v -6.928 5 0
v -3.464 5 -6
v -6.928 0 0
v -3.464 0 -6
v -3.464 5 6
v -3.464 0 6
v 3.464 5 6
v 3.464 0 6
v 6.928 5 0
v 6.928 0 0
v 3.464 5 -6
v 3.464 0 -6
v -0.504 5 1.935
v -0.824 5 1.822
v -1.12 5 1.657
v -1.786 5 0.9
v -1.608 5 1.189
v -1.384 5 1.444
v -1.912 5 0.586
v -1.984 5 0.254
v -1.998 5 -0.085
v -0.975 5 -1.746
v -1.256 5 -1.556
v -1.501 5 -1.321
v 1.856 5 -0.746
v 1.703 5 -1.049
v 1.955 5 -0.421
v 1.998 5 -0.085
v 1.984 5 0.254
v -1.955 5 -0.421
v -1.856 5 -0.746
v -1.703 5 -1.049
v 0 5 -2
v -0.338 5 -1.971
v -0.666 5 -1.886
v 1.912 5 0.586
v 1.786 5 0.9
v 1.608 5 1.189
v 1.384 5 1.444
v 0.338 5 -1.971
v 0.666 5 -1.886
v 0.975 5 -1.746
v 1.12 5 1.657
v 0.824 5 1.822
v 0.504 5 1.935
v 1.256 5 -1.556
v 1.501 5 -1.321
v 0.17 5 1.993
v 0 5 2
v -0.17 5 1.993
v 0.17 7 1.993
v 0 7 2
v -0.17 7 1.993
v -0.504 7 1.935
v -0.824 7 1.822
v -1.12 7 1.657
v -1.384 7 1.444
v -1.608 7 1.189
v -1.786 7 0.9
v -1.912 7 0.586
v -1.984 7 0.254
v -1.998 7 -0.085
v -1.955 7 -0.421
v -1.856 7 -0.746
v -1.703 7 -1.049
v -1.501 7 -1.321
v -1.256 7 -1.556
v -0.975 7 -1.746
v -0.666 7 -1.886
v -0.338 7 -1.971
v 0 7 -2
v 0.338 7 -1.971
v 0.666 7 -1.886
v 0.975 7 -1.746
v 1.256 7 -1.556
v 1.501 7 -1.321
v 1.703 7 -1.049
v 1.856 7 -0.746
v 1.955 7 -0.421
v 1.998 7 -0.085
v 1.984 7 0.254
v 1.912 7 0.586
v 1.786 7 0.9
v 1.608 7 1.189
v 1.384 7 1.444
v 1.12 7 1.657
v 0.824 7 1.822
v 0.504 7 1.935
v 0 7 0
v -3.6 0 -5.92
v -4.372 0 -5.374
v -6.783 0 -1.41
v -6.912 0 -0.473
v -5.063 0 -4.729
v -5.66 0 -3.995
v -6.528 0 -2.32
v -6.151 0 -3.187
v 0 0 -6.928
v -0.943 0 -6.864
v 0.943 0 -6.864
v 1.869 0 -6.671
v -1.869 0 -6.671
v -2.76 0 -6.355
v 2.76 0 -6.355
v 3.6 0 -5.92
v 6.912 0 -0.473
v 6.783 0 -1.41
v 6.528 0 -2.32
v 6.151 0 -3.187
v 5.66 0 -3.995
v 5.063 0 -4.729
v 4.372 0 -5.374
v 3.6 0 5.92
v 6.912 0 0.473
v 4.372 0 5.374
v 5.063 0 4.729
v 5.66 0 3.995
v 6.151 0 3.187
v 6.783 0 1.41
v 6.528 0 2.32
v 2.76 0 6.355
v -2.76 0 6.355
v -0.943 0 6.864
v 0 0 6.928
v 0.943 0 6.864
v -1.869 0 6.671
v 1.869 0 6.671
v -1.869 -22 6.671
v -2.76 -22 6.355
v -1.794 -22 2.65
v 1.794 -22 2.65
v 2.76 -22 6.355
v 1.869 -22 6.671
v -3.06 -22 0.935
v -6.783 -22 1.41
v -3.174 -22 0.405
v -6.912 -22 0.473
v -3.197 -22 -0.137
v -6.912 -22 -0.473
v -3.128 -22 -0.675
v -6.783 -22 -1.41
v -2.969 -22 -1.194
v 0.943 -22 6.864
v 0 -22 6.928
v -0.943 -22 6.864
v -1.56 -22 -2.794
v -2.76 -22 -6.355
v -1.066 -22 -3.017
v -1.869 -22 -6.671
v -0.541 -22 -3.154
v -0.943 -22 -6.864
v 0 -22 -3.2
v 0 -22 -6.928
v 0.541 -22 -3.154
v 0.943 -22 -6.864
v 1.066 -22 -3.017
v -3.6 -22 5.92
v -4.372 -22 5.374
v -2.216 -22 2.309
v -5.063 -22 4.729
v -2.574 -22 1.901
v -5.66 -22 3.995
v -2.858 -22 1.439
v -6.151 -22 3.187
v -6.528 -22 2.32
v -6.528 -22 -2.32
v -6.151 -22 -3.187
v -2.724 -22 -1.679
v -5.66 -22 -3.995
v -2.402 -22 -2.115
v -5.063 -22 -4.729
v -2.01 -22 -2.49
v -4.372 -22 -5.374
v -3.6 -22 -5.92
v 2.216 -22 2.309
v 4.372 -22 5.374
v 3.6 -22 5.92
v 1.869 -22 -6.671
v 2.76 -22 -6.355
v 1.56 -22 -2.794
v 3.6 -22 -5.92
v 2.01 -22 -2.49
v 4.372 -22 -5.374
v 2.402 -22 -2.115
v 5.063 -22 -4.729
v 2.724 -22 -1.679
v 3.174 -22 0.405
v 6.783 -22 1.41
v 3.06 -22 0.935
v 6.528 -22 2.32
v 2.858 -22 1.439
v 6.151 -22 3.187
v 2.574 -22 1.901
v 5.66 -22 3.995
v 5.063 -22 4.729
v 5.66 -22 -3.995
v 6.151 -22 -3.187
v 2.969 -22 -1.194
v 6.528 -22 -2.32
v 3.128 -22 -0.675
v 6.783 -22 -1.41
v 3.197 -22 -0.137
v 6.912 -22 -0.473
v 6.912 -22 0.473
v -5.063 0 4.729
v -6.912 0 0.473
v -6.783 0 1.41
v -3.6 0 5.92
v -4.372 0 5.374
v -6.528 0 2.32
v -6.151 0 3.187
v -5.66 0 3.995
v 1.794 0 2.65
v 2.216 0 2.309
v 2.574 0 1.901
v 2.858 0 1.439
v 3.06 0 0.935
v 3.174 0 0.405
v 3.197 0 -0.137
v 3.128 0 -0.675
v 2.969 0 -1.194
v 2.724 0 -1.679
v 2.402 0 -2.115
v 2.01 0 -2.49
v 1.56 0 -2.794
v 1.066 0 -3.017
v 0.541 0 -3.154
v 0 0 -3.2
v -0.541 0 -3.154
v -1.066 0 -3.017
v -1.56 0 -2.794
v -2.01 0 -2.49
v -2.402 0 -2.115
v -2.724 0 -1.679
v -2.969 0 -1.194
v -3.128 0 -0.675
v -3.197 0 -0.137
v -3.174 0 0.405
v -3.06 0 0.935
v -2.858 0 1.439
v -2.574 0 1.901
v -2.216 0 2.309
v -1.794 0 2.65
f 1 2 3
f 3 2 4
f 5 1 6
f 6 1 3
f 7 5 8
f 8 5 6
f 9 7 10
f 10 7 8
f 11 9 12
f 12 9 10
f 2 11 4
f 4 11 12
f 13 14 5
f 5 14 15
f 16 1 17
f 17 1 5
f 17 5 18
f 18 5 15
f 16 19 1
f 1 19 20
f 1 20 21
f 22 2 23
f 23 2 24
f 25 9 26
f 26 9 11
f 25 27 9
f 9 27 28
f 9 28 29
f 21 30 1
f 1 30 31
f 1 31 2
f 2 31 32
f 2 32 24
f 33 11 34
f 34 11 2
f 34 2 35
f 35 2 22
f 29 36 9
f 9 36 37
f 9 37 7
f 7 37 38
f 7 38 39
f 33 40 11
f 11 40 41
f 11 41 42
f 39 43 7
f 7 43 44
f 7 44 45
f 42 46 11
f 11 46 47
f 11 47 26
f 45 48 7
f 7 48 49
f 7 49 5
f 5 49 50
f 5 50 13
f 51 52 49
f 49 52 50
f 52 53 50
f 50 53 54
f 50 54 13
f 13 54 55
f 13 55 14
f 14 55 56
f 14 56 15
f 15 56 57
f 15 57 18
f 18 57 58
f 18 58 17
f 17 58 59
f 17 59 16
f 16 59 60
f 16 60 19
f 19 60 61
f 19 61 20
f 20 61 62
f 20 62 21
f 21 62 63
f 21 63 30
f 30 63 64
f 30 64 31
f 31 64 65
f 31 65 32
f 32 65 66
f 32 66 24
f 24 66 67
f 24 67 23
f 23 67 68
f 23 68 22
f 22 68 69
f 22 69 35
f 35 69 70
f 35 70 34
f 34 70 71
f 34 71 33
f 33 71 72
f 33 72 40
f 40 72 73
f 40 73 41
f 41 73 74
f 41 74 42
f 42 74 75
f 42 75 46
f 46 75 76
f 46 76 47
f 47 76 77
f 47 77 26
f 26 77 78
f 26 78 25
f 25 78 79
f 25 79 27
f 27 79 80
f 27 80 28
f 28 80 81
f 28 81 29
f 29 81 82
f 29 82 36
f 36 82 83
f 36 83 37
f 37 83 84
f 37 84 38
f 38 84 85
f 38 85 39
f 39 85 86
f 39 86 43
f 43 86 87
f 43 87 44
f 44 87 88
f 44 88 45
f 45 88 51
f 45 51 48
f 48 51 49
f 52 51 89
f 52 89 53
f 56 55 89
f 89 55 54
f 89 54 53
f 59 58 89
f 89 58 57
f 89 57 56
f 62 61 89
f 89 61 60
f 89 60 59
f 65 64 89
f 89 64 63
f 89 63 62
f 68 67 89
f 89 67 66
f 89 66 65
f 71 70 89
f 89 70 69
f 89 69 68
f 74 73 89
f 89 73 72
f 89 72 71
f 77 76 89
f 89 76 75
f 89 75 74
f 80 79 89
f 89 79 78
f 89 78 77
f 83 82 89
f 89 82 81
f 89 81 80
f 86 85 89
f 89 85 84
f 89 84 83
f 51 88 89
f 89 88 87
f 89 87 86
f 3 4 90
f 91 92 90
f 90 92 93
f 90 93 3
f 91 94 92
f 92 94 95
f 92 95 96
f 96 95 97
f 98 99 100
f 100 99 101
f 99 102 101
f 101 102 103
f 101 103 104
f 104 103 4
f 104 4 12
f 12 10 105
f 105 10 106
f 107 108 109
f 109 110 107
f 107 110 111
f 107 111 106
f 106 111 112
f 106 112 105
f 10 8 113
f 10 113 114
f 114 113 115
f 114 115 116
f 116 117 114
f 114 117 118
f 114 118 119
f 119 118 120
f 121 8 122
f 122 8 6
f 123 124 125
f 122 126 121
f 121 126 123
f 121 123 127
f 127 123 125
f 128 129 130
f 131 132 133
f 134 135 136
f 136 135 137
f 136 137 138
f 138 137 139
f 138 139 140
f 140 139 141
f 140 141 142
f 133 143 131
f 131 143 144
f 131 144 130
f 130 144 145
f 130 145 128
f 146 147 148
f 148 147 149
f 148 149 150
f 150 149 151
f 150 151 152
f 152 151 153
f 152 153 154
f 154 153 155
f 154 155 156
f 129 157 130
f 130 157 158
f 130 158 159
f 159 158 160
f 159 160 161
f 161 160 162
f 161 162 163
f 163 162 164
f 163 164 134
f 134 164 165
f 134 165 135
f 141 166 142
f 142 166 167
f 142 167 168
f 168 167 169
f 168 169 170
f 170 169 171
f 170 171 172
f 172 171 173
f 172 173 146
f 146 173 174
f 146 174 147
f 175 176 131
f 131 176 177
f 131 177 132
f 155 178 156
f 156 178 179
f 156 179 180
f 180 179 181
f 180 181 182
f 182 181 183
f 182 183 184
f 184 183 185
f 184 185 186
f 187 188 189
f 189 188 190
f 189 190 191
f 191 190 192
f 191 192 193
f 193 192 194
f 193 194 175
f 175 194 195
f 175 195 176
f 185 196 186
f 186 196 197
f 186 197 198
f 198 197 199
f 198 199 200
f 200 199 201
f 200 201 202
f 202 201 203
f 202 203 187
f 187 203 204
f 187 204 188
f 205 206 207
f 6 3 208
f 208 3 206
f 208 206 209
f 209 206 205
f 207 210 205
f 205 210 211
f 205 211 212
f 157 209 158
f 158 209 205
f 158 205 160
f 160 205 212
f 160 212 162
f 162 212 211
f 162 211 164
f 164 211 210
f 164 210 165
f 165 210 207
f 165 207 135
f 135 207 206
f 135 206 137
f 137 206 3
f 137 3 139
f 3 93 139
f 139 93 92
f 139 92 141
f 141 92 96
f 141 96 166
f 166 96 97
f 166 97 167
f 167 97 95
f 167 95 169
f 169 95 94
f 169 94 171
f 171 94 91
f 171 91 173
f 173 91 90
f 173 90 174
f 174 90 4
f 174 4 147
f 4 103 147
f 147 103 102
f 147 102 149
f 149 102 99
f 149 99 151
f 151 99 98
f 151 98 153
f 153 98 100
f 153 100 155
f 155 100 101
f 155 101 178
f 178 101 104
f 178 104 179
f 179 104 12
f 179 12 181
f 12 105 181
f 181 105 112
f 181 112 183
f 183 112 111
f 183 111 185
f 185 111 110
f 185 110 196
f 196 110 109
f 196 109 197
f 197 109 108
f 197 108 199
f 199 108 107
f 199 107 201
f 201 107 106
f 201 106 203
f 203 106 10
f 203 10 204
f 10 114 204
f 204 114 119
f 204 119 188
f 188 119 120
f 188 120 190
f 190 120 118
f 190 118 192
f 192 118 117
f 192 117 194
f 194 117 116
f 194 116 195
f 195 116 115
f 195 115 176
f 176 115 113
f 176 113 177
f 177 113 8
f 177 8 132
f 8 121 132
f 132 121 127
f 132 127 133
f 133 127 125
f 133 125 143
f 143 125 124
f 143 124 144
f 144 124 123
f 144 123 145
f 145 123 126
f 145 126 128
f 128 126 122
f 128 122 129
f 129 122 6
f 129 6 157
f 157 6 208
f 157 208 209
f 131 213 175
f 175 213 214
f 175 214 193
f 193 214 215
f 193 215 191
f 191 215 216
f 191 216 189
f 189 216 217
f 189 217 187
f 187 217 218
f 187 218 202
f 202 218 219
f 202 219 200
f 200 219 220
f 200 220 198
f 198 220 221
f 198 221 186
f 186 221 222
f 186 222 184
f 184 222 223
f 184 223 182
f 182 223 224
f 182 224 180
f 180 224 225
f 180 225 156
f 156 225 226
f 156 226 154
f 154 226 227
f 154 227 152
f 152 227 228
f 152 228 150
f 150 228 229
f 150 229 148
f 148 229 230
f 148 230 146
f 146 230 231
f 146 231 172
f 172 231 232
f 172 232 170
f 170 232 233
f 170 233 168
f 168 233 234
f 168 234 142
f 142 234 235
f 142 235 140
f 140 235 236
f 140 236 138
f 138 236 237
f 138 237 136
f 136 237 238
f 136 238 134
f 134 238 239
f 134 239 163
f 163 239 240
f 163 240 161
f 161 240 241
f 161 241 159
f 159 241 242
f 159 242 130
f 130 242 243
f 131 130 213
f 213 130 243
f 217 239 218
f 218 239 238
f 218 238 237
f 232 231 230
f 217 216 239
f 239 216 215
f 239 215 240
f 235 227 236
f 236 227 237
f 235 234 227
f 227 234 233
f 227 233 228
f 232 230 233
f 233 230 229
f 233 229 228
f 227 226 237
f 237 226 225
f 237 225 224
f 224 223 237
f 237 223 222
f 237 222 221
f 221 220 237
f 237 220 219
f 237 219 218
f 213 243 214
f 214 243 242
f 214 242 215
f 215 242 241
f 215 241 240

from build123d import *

# Parameters (mm, degrees)
BOSS_EXTRUDE1_DEPTH = 5
SKETCH1_3_R         = 2
BOSS_EXTRUDE2_DEPTH = 7
SKETCH2_R           = 6.92820323
BOSS_EXTRUDE3_DEPTH = 22


with BuildPart() as part:
    # Sketch1 → Boss-Extrude1 (new body)
    with BuildSketch(Plane(origin=(0, 0, 0), x_dir=(1, 0, 0), z_dir=(0, 1, 0))):
        Polygon((-6.92820323, 0), (-3.464101615, -6), (3.464101615, -6), (6.92820323, 0), (3.464101615, 6), (-3.464101615, 6), align=None)
    extrude(amount=BOSS_EXTRUDE1_DEPTH)

    # Sketch1<3> → Boss-Extrude2 (add)
    with BuildSketch(Plane(origin=(0, 0, 0), x_dir=(1, 0, 0), z_dir=(0, 1, 0))):
        Circle(SKETCH1_3_R)
    extrude(amount=BOSS_EXTRUDE2_DEPTH)

    # Sketch2 → Boss-Extrude3 (add)
    with BuildSketch(Plane.XZ):
        Circle(SKETCH2_R)
        with BuildLine():
            Line((-1.793739111, 2.65), (1.793739111, 2.65))
            ThreePointArc((1.793739111, 2.65), (0, -3.2), (-1.793739111, 2.65))
        make_face(mode=Mode.SUBTRACT)
    extrude(amount=BOSS_EXTRUDE3_DEPTH)


solid = part.part
